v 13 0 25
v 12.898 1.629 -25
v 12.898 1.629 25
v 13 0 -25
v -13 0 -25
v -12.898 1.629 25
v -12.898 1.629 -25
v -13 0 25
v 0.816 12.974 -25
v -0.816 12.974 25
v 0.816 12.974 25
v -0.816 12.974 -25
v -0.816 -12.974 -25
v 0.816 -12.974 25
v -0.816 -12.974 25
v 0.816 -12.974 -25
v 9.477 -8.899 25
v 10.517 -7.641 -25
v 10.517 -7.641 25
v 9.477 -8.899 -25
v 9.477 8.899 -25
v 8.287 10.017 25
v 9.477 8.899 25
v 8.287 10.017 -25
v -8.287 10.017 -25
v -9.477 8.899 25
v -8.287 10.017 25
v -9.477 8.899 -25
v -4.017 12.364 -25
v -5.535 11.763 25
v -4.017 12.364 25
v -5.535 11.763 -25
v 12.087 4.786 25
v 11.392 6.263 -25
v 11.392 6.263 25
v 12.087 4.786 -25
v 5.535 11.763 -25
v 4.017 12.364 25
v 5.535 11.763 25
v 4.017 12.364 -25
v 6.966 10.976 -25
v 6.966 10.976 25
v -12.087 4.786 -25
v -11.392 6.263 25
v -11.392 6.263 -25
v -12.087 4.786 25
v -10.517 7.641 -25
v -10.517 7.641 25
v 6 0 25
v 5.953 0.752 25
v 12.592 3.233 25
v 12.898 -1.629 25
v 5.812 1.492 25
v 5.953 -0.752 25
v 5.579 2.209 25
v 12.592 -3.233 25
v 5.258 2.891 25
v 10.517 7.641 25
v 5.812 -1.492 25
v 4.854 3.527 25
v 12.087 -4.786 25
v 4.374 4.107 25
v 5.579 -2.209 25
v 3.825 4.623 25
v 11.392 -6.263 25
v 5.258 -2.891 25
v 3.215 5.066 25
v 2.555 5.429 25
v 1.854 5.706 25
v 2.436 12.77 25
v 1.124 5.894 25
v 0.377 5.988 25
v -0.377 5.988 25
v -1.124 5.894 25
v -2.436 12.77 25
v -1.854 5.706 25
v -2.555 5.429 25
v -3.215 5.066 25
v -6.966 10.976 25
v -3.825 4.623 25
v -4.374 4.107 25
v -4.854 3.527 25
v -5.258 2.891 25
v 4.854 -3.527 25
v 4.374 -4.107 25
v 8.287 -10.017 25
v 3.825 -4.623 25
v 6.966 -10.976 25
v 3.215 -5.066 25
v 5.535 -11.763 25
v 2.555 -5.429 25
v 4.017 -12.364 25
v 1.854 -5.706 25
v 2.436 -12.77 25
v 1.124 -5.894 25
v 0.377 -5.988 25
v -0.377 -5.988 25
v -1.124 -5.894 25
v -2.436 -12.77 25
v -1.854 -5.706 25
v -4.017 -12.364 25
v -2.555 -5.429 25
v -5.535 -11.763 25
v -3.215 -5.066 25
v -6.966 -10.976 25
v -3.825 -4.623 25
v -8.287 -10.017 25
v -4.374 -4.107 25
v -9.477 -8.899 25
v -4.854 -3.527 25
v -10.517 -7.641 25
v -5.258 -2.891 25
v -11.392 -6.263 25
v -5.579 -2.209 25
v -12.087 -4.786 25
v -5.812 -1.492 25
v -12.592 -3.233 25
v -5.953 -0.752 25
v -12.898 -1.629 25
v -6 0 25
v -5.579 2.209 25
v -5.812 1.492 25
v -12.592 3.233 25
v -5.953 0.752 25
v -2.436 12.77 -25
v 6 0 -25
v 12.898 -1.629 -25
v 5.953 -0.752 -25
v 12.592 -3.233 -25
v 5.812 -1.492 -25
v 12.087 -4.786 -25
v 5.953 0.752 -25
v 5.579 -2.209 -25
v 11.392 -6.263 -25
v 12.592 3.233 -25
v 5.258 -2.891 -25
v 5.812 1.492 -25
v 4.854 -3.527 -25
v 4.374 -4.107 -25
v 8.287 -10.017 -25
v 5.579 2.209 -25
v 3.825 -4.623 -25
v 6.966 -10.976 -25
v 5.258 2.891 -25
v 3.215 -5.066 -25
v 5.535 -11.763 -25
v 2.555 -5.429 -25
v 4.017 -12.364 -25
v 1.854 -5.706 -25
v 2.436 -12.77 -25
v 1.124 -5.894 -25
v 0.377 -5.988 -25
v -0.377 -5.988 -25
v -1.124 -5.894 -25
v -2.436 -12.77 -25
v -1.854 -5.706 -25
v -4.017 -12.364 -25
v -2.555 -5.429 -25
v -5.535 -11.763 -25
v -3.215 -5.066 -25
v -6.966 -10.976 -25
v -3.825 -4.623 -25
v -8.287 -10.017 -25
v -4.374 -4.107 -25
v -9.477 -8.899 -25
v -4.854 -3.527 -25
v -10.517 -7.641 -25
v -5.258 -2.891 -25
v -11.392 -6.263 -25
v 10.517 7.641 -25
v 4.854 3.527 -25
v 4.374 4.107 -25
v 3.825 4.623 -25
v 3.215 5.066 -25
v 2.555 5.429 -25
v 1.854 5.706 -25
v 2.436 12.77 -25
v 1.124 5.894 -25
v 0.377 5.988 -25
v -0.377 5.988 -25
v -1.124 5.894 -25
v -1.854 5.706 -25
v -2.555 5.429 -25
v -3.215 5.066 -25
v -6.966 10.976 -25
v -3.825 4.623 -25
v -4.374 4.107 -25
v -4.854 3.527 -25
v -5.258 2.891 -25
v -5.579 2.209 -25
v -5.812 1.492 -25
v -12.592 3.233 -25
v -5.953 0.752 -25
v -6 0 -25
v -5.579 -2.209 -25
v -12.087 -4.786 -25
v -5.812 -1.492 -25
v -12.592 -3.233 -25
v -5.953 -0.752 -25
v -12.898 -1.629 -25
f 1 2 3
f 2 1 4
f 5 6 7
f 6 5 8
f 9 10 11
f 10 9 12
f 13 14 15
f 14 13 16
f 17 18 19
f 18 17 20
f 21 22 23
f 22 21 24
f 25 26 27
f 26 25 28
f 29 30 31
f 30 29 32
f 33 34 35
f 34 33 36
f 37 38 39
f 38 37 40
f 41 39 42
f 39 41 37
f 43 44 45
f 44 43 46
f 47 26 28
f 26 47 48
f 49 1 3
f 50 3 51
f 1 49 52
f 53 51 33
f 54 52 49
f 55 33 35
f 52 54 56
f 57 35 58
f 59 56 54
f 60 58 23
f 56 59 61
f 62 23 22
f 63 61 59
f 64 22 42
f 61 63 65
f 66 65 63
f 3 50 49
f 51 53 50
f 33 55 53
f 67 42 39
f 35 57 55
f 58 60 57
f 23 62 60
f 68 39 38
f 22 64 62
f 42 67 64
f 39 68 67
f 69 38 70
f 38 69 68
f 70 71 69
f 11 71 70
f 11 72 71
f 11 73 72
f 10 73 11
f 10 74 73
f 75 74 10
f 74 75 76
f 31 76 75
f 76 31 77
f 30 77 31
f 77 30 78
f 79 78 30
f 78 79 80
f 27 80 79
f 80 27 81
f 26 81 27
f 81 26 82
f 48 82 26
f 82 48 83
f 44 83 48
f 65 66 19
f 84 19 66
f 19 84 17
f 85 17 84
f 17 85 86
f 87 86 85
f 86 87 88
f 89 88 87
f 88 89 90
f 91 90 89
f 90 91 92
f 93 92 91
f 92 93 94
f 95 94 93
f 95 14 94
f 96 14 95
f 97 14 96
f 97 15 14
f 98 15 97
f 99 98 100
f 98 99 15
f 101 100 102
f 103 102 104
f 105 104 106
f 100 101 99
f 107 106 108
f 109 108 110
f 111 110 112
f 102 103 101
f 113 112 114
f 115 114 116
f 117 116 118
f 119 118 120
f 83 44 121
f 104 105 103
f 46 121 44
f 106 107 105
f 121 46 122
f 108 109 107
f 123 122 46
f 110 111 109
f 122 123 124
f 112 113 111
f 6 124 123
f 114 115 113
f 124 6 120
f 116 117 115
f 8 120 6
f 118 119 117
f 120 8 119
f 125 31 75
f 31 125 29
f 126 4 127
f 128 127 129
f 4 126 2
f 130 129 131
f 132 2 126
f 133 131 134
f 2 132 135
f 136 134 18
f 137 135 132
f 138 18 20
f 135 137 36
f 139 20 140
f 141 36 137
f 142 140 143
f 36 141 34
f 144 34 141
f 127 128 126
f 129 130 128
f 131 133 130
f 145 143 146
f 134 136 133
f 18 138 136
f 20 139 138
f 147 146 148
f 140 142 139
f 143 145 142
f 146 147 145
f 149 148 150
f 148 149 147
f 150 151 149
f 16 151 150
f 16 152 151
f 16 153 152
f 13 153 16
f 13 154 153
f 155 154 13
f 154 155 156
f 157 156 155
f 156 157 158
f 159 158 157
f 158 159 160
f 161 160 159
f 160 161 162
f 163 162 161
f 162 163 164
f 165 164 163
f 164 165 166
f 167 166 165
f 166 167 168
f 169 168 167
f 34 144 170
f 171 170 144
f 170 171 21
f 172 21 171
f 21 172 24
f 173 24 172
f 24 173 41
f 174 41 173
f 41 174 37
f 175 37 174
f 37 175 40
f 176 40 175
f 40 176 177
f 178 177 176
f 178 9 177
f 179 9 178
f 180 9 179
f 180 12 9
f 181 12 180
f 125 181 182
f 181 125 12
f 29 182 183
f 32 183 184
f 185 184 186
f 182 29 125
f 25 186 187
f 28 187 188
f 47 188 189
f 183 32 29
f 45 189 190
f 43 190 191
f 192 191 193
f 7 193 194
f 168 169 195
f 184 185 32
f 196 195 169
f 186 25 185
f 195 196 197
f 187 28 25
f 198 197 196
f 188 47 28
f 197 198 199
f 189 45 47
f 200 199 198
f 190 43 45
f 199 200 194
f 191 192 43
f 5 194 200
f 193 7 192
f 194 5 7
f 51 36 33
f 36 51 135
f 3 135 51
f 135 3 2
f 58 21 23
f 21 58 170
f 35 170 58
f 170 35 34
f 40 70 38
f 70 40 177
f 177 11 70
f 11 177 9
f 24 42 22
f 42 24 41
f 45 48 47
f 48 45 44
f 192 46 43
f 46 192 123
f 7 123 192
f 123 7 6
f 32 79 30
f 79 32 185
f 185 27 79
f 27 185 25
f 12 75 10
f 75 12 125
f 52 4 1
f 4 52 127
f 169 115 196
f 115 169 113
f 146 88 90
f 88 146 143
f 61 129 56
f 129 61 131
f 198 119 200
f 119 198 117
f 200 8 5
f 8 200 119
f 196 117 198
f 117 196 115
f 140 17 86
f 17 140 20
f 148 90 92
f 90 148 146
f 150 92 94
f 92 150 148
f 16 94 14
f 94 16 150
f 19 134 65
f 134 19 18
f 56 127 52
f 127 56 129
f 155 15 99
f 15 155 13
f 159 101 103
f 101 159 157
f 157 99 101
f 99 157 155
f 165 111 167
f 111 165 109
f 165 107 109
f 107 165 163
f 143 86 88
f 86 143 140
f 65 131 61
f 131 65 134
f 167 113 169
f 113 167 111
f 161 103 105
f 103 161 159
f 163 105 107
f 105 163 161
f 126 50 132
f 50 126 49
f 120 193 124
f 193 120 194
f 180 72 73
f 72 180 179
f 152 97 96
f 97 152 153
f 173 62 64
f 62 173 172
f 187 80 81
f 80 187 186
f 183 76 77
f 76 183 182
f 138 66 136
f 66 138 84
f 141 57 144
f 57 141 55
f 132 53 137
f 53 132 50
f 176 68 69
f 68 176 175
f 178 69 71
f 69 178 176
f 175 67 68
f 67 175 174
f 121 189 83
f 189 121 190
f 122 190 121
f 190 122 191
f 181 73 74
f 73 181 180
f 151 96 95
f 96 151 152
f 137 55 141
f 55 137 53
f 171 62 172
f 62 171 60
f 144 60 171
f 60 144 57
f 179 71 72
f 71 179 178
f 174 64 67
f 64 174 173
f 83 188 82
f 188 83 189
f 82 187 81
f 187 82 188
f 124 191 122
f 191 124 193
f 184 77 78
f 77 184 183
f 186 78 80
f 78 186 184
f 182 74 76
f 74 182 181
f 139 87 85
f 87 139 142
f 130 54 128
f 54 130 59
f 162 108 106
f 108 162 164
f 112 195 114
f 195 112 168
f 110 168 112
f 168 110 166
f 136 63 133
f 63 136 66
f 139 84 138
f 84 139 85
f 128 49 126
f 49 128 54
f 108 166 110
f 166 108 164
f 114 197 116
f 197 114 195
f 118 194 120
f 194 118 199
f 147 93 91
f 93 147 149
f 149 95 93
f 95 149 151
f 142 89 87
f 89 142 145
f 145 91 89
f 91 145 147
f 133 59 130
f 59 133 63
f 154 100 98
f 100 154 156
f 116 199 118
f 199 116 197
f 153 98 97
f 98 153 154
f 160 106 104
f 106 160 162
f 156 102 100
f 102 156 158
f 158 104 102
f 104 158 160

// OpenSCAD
$fn = 50;


difference() {
	union() {
		translate(v = [0, 0, -25.0000000000]) {
			cylinder(h = 50, r = 13.0000000000);
		}
	}
	union() {
		translate(v = [0, 0, -100.0000000000]) {
			cylinder(h = 200, r = 6);
		}
	}
}
